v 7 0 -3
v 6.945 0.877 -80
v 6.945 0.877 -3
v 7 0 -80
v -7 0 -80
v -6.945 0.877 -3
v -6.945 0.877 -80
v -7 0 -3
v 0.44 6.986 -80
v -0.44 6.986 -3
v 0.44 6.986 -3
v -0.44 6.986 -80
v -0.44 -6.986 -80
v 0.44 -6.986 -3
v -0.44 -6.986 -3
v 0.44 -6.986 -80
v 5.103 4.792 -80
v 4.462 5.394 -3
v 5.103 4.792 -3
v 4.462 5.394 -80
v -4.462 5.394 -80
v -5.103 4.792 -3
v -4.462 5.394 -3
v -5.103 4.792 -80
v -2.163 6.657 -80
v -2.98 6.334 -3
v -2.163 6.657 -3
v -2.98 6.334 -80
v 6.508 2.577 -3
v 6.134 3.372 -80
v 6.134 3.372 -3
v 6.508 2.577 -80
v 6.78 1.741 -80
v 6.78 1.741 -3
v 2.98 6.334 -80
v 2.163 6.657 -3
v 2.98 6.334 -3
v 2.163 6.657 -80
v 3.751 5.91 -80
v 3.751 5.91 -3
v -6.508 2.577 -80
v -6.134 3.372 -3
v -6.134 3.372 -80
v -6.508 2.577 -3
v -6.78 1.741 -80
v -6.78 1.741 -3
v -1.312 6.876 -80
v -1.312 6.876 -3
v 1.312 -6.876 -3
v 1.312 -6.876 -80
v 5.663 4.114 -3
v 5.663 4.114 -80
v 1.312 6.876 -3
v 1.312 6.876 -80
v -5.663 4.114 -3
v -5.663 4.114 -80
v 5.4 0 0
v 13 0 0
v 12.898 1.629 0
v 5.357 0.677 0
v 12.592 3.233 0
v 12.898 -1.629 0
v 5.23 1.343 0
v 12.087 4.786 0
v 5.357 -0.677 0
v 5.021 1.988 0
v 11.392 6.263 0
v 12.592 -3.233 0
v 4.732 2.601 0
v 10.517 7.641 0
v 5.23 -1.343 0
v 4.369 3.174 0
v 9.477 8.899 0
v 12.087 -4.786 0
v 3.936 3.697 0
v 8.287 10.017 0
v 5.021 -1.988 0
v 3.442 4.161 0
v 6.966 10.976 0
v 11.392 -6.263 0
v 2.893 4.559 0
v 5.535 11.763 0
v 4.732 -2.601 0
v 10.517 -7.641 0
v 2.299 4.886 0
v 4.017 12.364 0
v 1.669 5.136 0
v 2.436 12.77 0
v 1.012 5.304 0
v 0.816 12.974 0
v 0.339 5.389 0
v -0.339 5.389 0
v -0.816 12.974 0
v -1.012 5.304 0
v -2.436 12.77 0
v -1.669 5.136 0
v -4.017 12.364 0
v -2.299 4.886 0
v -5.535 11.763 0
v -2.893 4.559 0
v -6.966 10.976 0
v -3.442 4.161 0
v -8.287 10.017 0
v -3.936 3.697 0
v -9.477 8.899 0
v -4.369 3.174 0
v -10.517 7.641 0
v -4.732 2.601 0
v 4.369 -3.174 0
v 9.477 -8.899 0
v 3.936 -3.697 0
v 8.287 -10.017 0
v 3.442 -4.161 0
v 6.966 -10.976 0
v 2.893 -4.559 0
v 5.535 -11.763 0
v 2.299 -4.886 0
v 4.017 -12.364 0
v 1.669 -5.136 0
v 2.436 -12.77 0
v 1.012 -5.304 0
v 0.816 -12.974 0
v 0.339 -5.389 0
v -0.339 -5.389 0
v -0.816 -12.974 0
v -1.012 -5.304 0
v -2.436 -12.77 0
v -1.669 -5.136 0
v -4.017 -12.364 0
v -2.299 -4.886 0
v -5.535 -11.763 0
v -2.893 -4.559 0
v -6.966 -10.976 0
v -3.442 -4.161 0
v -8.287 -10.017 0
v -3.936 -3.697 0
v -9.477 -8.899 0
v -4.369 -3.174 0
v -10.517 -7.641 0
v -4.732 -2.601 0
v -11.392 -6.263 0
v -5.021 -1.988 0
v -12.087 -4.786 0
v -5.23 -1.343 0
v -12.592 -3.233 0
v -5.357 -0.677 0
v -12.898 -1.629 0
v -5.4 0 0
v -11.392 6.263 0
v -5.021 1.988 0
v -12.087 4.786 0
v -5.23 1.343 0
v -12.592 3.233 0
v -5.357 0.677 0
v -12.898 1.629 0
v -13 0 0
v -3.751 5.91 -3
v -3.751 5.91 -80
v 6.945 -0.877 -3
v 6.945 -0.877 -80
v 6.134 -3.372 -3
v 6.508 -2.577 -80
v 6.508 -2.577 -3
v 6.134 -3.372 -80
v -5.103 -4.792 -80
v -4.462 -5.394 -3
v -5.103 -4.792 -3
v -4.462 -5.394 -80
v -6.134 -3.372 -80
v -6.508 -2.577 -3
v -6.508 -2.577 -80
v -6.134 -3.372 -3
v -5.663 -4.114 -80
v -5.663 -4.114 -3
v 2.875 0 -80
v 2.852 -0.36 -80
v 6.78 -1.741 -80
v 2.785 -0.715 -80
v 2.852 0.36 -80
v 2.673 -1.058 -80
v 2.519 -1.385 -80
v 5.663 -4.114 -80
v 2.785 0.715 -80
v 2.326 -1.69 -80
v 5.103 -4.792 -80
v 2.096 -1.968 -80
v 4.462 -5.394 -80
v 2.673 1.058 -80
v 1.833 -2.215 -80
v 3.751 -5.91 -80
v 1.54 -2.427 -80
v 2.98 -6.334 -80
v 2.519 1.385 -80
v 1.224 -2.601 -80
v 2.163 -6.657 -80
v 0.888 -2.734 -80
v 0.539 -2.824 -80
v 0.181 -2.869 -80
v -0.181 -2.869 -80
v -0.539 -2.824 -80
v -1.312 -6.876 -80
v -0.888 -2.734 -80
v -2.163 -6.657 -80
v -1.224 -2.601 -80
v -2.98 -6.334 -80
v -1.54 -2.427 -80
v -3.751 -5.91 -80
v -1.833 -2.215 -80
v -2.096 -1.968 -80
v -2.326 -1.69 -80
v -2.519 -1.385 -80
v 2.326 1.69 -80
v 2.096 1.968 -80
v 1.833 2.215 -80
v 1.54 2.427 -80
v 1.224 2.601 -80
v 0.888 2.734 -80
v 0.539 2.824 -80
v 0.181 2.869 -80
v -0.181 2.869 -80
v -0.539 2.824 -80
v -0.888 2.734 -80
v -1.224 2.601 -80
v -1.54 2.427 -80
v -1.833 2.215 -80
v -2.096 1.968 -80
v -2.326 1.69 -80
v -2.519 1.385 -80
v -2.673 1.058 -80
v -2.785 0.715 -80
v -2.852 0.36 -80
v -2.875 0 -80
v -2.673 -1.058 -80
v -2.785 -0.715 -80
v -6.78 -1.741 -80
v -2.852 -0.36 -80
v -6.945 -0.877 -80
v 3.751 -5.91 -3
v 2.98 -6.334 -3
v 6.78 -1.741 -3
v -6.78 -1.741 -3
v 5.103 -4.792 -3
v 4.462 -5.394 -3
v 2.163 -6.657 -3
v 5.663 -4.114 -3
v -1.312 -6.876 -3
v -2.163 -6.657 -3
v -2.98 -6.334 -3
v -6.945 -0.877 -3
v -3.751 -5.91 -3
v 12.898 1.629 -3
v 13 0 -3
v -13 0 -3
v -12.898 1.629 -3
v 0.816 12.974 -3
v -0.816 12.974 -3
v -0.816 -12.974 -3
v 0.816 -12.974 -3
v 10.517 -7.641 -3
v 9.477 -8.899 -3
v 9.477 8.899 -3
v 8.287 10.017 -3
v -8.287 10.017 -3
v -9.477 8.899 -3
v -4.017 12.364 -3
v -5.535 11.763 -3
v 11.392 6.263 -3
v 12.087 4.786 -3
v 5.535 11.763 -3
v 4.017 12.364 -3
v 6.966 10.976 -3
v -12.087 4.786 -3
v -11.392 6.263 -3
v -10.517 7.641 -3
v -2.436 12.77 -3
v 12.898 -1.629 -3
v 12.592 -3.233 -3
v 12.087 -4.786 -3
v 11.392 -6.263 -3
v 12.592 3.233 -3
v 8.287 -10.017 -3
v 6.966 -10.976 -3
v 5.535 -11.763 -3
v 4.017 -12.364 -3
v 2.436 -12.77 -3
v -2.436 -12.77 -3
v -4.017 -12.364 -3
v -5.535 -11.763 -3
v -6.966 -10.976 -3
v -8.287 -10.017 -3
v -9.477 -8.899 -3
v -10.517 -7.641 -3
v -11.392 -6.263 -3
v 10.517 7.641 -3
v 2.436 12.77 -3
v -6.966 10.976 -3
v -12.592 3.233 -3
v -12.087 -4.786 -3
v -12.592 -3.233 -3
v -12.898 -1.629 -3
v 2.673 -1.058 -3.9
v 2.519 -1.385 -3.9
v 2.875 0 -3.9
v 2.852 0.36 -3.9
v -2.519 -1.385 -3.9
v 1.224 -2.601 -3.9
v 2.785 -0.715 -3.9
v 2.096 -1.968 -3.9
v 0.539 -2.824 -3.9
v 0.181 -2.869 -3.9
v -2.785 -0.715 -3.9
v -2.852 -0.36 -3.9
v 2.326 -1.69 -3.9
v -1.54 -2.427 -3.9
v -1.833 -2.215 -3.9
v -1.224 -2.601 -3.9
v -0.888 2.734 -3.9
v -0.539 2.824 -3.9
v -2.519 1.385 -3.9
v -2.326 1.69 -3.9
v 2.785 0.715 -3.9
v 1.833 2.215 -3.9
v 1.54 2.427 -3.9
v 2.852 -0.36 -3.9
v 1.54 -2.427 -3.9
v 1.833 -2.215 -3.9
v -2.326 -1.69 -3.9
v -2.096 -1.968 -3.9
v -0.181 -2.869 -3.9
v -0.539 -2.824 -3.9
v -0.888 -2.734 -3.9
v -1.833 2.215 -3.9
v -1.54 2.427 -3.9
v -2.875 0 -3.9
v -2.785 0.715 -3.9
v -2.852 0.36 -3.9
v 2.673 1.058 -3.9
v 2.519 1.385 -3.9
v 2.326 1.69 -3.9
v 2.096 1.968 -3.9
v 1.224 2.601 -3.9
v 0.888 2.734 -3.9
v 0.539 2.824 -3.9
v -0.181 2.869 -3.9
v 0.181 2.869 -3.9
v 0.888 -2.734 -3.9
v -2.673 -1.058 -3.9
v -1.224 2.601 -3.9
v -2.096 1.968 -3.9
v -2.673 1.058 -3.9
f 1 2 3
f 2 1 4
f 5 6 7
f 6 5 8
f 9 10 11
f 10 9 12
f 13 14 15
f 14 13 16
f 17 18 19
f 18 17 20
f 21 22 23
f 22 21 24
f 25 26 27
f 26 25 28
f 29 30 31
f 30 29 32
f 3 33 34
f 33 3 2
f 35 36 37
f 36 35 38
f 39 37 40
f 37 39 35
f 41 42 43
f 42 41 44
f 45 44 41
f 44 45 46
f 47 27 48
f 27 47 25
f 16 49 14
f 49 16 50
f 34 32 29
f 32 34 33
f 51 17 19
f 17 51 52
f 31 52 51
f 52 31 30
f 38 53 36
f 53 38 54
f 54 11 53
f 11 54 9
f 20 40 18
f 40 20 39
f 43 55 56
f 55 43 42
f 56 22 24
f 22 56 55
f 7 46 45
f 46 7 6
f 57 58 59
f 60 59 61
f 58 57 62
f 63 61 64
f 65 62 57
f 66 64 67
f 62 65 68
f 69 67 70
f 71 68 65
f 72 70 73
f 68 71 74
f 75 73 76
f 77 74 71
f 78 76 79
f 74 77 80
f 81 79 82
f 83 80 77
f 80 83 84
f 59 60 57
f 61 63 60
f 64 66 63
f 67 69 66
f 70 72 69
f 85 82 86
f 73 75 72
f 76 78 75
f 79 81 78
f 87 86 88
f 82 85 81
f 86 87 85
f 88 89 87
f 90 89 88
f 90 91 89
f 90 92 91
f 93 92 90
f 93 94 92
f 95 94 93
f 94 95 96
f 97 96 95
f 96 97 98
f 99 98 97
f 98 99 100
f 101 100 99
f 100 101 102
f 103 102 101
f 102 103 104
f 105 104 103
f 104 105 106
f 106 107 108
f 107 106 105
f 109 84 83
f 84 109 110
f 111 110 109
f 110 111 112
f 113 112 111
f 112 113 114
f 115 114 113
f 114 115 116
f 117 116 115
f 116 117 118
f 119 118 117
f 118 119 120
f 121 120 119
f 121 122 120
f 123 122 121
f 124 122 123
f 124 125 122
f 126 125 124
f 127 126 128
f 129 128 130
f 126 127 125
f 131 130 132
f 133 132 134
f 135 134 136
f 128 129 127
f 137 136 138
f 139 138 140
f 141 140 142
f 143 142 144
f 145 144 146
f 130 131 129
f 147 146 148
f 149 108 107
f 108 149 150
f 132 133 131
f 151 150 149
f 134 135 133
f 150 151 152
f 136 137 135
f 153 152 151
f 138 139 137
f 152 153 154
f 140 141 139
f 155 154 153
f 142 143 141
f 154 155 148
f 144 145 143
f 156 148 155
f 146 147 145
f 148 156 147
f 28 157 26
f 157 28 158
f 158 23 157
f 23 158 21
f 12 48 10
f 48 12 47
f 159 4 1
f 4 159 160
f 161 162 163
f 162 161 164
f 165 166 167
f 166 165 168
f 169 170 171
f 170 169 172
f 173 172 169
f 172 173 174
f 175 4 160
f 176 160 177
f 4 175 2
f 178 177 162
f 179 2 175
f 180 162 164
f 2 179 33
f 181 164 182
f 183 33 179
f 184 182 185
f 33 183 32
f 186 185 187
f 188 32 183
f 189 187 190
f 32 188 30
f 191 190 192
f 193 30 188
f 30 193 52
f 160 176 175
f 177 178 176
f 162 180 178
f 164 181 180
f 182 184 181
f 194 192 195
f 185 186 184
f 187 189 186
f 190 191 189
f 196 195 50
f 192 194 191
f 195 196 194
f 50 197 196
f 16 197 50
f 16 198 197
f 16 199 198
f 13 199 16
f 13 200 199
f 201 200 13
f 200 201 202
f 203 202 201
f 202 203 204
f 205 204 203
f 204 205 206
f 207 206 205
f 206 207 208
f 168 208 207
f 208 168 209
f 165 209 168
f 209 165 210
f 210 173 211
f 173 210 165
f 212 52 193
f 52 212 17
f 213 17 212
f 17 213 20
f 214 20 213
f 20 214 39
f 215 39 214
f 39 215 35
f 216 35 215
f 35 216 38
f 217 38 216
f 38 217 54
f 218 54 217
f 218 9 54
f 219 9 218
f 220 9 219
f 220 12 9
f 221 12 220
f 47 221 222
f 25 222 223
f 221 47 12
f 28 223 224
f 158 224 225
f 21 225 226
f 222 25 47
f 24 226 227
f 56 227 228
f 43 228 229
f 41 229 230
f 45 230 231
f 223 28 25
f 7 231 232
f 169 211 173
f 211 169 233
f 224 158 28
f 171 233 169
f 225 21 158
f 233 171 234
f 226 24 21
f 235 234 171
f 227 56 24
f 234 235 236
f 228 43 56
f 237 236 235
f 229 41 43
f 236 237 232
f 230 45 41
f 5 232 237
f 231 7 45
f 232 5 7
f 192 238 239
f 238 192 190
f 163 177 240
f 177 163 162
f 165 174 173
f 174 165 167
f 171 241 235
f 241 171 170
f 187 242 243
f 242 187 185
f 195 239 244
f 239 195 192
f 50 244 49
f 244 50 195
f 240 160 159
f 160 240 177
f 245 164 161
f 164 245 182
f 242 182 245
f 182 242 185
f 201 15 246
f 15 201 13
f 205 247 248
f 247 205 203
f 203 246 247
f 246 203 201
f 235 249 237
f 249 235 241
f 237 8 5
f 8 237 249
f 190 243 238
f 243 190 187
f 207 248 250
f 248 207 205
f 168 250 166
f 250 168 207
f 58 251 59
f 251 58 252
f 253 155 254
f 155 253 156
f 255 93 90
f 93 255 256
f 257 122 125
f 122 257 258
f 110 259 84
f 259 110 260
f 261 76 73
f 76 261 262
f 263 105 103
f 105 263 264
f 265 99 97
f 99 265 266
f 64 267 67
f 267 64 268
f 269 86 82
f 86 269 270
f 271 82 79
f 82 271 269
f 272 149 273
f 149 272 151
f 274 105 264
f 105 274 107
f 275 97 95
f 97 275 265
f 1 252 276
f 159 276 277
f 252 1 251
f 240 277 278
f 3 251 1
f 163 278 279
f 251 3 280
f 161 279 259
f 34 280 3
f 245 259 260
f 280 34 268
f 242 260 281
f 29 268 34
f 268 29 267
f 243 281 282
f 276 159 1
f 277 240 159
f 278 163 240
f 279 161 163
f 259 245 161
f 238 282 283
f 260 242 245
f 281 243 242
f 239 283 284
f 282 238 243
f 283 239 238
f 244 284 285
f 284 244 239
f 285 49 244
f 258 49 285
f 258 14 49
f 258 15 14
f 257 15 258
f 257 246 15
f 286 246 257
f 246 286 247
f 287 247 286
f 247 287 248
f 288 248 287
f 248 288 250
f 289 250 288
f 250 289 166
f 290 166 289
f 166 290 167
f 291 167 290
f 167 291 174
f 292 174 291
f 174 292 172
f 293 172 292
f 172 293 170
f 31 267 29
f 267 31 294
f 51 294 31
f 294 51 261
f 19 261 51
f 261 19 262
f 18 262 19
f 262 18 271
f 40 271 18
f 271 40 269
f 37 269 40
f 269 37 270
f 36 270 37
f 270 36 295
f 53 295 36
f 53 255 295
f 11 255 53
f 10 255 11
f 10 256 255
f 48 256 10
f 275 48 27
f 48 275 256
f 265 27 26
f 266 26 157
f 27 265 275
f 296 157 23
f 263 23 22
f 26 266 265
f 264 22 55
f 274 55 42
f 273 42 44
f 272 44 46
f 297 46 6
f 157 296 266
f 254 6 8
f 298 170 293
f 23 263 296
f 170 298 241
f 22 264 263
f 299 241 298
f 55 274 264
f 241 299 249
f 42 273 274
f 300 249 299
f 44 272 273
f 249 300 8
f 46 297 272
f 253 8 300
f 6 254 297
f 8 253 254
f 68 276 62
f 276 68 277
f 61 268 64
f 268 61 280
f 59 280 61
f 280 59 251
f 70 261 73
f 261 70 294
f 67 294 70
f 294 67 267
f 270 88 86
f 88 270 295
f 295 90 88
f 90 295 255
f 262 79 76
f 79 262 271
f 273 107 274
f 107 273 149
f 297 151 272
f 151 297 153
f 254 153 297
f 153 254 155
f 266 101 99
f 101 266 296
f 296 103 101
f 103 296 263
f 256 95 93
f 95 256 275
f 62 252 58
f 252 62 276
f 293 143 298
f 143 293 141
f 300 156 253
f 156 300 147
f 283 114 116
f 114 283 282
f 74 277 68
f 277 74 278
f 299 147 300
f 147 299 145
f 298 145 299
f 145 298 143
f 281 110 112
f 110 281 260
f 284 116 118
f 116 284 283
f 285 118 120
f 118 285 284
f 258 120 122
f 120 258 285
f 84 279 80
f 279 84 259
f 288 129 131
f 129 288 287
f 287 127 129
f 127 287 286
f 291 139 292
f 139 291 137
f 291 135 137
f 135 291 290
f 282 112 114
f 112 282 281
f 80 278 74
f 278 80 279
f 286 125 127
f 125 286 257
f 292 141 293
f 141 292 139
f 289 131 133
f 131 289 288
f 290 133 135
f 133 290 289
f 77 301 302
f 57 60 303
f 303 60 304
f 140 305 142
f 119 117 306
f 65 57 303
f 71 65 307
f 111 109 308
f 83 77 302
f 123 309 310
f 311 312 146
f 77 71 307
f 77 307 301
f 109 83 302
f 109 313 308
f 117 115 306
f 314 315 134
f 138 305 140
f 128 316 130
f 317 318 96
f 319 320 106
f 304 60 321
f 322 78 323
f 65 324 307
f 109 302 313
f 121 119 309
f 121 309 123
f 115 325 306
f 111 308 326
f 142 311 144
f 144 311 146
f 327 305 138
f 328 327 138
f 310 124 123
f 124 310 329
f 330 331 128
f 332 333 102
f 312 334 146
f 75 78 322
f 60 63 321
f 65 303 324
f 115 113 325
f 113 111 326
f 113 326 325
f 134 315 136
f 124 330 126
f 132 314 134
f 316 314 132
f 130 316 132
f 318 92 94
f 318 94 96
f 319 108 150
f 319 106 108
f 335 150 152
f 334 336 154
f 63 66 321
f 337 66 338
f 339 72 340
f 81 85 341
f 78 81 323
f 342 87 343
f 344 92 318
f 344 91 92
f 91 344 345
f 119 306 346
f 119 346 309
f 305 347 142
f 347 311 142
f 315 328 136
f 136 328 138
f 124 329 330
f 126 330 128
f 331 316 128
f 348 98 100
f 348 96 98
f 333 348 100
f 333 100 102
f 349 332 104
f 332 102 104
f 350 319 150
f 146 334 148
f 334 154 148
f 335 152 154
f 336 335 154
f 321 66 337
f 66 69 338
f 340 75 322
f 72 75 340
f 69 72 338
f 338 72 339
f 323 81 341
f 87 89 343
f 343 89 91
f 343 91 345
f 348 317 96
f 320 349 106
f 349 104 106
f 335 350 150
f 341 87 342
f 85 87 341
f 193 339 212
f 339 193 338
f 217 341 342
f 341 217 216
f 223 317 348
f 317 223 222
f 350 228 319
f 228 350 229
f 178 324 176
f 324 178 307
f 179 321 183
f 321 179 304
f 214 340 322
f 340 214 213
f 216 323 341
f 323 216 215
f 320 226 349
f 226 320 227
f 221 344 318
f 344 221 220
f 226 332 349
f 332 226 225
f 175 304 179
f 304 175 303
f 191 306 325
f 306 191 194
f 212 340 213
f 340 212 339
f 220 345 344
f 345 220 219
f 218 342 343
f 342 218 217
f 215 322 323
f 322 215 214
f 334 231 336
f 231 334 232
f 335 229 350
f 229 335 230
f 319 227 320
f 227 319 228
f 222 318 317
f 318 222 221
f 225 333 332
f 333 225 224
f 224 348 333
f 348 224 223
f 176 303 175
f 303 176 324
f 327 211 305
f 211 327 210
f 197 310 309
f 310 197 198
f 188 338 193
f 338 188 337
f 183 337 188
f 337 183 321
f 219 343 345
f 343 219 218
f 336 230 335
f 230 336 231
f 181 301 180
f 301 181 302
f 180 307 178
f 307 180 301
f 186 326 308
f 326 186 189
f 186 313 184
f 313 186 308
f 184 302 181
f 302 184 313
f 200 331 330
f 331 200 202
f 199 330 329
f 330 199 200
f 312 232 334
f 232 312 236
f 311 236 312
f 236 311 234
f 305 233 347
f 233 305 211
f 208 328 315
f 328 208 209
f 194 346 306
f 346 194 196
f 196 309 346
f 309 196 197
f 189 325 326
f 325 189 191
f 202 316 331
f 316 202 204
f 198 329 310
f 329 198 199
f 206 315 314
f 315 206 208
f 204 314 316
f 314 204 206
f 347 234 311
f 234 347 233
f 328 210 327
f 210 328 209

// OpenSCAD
$fn = 50;


difference() {
	union() {
		translate(v = [0, 0, -80.0000000000]) {
			cylinder(h = 80, r = 7.0000000000);
		}
		translate(v = [0, 0, -3.0000000000]) {
			cylinder(h = 3, r = 13.0000000000);
		}
	}
	union() {
		translate(v = [0, 0, 0]) {
			rotate(a = [0, 0, 0]) {
				difference() {
					union() {
						#translate(v = [0, 0, -80.0000000000]) {
							cylinder(h = 80, r = 2.6000000000);
						}
						#translate(v = [0, 0, -3.9000000000]) {
							cylinder(h = 3.9000000000, r1 = 2.8750000000, r2 = 5.4000000000);
						}
						#translate(v = [0, 0, -80.0000000000]) {
							cylinder(h = 80, r = 2.8750000000);
						}
						#translate(v = [0, 0, -80.0000000000]) {
							cylinder(h = 80, r = 2.6000000000);
						}
					}
					union();
				}
			}
		}
	}
}
